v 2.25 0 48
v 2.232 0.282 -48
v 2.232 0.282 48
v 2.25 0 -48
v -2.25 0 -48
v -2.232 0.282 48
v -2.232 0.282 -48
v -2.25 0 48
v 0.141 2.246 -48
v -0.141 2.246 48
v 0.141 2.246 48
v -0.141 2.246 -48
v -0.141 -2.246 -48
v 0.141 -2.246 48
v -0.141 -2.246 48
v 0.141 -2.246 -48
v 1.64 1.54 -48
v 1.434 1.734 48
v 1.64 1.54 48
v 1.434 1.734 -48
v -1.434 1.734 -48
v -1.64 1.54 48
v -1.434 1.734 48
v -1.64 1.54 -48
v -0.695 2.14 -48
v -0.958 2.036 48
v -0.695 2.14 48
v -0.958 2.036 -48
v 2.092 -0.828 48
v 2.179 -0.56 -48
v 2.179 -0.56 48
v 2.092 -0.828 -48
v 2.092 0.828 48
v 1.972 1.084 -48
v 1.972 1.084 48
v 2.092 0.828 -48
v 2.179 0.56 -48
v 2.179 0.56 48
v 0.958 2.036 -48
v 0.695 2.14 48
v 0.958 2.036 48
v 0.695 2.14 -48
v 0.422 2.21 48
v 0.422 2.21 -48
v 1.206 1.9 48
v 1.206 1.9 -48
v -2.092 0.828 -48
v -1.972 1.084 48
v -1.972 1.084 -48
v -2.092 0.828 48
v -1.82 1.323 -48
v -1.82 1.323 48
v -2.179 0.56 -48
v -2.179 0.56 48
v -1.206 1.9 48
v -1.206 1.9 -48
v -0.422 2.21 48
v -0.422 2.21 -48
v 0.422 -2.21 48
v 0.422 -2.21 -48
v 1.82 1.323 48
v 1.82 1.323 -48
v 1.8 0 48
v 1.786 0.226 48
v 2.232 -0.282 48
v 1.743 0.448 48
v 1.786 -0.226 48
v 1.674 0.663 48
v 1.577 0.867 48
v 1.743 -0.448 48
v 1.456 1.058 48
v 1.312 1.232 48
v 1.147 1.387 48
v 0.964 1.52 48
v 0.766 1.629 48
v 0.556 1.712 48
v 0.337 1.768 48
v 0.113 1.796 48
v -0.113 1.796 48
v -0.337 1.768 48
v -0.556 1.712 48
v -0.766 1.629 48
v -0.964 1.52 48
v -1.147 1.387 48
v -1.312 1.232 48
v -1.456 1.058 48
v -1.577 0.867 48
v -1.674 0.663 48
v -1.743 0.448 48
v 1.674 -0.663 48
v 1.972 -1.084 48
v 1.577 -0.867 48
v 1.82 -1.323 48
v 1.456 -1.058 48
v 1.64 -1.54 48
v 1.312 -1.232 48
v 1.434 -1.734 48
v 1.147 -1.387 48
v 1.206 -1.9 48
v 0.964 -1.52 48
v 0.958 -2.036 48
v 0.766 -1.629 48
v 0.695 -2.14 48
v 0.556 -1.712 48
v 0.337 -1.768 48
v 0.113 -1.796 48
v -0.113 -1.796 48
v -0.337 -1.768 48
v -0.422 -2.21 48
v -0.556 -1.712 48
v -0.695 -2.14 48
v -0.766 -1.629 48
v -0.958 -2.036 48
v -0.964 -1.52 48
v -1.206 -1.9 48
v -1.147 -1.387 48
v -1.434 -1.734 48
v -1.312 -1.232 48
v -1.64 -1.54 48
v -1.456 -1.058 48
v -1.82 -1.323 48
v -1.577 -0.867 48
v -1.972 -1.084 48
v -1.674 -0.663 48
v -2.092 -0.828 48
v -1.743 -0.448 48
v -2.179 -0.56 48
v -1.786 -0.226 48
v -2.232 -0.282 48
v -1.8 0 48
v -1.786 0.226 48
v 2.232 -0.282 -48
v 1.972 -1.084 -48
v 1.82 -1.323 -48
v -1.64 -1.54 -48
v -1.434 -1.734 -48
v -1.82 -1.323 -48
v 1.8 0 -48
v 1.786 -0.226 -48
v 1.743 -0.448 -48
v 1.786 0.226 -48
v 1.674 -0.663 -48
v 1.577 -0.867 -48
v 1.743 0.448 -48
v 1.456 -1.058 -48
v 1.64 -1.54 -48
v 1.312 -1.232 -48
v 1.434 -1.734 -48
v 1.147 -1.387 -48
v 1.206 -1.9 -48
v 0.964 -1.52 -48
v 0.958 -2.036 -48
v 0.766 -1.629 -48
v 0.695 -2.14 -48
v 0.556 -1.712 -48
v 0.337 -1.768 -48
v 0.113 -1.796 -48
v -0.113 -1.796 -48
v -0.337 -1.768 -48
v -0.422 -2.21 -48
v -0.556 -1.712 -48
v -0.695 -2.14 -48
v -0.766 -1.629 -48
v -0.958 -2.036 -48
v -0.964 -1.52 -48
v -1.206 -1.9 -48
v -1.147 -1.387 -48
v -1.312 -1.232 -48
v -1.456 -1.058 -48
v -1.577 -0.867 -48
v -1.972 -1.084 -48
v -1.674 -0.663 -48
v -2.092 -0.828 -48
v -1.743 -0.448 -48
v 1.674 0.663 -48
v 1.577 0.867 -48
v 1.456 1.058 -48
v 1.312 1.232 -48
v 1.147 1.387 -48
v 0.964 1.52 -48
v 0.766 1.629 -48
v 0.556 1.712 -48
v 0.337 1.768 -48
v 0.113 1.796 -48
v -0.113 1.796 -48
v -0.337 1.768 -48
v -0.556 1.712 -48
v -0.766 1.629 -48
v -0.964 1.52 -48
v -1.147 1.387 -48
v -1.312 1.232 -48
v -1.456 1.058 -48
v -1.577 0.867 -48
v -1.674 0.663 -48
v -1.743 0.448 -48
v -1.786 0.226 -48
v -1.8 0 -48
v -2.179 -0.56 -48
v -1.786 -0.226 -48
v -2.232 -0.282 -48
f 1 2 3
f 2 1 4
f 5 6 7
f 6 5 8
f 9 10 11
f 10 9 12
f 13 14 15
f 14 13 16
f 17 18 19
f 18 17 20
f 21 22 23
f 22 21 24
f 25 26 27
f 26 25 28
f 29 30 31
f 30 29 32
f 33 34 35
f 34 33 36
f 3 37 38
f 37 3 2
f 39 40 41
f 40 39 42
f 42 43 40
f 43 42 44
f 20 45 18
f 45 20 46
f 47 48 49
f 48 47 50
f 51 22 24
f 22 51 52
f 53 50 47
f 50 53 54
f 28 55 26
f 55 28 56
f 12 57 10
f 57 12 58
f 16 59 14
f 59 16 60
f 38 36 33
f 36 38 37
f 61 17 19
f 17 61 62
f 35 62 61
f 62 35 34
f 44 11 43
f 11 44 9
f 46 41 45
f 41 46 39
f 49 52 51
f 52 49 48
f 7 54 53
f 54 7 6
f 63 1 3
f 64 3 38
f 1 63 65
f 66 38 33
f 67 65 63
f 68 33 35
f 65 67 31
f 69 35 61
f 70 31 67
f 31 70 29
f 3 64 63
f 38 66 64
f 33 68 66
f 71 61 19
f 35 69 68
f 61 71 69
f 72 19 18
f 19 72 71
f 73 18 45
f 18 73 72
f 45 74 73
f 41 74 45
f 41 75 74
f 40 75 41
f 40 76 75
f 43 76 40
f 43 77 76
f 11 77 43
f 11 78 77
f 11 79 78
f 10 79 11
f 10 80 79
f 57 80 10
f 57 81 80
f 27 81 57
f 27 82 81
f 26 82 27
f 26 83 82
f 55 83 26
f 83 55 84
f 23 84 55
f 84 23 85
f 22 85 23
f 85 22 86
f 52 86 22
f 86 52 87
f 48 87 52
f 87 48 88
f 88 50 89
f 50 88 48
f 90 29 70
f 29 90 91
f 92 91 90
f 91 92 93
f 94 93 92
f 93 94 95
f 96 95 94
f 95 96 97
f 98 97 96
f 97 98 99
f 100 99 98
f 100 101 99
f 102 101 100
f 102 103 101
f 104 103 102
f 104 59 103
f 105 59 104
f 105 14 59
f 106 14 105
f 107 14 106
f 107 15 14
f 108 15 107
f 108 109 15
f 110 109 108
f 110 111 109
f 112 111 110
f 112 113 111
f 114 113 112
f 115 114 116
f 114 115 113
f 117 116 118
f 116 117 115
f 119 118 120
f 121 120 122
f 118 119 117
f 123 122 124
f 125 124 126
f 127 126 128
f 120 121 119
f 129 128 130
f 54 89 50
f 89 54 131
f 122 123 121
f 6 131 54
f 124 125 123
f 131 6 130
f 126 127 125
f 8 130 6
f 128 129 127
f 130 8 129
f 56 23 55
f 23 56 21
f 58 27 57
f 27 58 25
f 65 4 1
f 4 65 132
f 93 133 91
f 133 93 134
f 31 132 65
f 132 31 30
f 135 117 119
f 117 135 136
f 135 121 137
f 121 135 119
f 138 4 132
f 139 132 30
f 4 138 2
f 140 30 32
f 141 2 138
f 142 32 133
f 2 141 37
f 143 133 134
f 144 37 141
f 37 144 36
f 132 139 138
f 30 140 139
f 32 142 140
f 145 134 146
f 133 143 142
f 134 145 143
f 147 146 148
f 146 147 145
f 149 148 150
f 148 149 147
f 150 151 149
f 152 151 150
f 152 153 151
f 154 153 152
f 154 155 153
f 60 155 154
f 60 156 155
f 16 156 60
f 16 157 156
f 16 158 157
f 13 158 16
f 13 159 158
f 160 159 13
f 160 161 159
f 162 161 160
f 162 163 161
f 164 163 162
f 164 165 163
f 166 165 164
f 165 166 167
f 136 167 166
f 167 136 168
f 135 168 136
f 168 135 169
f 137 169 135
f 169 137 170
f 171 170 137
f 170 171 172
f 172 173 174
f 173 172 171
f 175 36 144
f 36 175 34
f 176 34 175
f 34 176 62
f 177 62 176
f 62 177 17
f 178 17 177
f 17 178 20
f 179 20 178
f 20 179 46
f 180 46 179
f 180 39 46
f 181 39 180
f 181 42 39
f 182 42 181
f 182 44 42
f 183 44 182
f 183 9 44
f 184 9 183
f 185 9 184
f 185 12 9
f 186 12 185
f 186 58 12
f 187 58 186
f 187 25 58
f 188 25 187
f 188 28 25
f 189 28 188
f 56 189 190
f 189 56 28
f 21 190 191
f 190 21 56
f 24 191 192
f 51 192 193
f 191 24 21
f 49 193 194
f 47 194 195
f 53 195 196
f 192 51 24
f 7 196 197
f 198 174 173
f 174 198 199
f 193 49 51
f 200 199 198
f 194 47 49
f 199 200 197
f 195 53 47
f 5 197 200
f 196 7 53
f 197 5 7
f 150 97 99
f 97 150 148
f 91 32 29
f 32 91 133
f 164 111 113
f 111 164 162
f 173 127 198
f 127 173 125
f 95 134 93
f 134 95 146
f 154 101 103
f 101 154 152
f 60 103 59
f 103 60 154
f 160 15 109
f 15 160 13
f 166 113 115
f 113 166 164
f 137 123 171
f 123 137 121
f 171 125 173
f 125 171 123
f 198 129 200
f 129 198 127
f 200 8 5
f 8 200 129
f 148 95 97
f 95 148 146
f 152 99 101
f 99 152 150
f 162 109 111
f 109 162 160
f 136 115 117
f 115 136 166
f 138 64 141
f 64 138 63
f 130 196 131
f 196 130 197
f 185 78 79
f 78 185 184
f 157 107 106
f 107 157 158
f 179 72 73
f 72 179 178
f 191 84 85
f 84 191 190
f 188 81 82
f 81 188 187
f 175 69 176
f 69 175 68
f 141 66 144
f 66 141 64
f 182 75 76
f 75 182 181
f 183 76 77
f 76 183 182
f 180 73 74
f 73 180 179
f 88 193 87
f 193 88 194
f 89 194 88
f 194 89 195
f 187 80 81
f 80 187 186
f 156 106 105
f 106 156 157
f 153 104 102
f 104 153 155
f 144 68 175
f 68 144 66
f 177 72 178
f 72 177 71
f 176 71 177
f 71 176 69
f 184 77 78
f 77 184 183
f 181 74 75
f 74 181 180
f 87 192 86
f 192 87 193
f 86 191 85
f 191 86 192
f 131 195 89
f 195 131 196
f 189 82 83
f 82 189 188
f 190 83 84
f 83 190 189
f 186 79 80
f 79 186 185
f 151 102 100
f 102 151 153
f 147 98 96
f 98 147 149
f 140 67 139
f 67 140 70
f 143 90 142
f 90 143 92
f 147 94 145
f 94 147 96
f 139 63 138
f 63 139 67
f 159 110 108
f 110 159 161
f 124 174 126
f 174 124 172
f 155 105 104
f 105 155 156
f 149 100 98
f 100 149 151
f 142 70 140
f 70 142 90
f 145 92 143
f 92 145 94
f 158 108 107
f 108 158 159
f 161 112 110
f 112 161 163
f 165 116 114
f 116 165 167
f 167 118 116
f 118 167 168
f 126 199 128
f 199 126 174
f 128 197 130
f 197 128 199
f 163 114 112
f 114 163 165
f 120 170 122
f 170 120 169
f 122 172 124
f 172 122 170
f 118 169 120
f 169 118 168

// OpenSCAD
$fn = 50;


difference() {
	union() {
		translate(v = [0, 0, -48.0000000000]) {
			cylinder(h = 96, r = 2.2500000000);
		}
	}
	union() {
		translate(v = [0, 0, -100.0000000000]) {
			cylinder(h = 200, r = 1.8000000000);
		}
	}
}
